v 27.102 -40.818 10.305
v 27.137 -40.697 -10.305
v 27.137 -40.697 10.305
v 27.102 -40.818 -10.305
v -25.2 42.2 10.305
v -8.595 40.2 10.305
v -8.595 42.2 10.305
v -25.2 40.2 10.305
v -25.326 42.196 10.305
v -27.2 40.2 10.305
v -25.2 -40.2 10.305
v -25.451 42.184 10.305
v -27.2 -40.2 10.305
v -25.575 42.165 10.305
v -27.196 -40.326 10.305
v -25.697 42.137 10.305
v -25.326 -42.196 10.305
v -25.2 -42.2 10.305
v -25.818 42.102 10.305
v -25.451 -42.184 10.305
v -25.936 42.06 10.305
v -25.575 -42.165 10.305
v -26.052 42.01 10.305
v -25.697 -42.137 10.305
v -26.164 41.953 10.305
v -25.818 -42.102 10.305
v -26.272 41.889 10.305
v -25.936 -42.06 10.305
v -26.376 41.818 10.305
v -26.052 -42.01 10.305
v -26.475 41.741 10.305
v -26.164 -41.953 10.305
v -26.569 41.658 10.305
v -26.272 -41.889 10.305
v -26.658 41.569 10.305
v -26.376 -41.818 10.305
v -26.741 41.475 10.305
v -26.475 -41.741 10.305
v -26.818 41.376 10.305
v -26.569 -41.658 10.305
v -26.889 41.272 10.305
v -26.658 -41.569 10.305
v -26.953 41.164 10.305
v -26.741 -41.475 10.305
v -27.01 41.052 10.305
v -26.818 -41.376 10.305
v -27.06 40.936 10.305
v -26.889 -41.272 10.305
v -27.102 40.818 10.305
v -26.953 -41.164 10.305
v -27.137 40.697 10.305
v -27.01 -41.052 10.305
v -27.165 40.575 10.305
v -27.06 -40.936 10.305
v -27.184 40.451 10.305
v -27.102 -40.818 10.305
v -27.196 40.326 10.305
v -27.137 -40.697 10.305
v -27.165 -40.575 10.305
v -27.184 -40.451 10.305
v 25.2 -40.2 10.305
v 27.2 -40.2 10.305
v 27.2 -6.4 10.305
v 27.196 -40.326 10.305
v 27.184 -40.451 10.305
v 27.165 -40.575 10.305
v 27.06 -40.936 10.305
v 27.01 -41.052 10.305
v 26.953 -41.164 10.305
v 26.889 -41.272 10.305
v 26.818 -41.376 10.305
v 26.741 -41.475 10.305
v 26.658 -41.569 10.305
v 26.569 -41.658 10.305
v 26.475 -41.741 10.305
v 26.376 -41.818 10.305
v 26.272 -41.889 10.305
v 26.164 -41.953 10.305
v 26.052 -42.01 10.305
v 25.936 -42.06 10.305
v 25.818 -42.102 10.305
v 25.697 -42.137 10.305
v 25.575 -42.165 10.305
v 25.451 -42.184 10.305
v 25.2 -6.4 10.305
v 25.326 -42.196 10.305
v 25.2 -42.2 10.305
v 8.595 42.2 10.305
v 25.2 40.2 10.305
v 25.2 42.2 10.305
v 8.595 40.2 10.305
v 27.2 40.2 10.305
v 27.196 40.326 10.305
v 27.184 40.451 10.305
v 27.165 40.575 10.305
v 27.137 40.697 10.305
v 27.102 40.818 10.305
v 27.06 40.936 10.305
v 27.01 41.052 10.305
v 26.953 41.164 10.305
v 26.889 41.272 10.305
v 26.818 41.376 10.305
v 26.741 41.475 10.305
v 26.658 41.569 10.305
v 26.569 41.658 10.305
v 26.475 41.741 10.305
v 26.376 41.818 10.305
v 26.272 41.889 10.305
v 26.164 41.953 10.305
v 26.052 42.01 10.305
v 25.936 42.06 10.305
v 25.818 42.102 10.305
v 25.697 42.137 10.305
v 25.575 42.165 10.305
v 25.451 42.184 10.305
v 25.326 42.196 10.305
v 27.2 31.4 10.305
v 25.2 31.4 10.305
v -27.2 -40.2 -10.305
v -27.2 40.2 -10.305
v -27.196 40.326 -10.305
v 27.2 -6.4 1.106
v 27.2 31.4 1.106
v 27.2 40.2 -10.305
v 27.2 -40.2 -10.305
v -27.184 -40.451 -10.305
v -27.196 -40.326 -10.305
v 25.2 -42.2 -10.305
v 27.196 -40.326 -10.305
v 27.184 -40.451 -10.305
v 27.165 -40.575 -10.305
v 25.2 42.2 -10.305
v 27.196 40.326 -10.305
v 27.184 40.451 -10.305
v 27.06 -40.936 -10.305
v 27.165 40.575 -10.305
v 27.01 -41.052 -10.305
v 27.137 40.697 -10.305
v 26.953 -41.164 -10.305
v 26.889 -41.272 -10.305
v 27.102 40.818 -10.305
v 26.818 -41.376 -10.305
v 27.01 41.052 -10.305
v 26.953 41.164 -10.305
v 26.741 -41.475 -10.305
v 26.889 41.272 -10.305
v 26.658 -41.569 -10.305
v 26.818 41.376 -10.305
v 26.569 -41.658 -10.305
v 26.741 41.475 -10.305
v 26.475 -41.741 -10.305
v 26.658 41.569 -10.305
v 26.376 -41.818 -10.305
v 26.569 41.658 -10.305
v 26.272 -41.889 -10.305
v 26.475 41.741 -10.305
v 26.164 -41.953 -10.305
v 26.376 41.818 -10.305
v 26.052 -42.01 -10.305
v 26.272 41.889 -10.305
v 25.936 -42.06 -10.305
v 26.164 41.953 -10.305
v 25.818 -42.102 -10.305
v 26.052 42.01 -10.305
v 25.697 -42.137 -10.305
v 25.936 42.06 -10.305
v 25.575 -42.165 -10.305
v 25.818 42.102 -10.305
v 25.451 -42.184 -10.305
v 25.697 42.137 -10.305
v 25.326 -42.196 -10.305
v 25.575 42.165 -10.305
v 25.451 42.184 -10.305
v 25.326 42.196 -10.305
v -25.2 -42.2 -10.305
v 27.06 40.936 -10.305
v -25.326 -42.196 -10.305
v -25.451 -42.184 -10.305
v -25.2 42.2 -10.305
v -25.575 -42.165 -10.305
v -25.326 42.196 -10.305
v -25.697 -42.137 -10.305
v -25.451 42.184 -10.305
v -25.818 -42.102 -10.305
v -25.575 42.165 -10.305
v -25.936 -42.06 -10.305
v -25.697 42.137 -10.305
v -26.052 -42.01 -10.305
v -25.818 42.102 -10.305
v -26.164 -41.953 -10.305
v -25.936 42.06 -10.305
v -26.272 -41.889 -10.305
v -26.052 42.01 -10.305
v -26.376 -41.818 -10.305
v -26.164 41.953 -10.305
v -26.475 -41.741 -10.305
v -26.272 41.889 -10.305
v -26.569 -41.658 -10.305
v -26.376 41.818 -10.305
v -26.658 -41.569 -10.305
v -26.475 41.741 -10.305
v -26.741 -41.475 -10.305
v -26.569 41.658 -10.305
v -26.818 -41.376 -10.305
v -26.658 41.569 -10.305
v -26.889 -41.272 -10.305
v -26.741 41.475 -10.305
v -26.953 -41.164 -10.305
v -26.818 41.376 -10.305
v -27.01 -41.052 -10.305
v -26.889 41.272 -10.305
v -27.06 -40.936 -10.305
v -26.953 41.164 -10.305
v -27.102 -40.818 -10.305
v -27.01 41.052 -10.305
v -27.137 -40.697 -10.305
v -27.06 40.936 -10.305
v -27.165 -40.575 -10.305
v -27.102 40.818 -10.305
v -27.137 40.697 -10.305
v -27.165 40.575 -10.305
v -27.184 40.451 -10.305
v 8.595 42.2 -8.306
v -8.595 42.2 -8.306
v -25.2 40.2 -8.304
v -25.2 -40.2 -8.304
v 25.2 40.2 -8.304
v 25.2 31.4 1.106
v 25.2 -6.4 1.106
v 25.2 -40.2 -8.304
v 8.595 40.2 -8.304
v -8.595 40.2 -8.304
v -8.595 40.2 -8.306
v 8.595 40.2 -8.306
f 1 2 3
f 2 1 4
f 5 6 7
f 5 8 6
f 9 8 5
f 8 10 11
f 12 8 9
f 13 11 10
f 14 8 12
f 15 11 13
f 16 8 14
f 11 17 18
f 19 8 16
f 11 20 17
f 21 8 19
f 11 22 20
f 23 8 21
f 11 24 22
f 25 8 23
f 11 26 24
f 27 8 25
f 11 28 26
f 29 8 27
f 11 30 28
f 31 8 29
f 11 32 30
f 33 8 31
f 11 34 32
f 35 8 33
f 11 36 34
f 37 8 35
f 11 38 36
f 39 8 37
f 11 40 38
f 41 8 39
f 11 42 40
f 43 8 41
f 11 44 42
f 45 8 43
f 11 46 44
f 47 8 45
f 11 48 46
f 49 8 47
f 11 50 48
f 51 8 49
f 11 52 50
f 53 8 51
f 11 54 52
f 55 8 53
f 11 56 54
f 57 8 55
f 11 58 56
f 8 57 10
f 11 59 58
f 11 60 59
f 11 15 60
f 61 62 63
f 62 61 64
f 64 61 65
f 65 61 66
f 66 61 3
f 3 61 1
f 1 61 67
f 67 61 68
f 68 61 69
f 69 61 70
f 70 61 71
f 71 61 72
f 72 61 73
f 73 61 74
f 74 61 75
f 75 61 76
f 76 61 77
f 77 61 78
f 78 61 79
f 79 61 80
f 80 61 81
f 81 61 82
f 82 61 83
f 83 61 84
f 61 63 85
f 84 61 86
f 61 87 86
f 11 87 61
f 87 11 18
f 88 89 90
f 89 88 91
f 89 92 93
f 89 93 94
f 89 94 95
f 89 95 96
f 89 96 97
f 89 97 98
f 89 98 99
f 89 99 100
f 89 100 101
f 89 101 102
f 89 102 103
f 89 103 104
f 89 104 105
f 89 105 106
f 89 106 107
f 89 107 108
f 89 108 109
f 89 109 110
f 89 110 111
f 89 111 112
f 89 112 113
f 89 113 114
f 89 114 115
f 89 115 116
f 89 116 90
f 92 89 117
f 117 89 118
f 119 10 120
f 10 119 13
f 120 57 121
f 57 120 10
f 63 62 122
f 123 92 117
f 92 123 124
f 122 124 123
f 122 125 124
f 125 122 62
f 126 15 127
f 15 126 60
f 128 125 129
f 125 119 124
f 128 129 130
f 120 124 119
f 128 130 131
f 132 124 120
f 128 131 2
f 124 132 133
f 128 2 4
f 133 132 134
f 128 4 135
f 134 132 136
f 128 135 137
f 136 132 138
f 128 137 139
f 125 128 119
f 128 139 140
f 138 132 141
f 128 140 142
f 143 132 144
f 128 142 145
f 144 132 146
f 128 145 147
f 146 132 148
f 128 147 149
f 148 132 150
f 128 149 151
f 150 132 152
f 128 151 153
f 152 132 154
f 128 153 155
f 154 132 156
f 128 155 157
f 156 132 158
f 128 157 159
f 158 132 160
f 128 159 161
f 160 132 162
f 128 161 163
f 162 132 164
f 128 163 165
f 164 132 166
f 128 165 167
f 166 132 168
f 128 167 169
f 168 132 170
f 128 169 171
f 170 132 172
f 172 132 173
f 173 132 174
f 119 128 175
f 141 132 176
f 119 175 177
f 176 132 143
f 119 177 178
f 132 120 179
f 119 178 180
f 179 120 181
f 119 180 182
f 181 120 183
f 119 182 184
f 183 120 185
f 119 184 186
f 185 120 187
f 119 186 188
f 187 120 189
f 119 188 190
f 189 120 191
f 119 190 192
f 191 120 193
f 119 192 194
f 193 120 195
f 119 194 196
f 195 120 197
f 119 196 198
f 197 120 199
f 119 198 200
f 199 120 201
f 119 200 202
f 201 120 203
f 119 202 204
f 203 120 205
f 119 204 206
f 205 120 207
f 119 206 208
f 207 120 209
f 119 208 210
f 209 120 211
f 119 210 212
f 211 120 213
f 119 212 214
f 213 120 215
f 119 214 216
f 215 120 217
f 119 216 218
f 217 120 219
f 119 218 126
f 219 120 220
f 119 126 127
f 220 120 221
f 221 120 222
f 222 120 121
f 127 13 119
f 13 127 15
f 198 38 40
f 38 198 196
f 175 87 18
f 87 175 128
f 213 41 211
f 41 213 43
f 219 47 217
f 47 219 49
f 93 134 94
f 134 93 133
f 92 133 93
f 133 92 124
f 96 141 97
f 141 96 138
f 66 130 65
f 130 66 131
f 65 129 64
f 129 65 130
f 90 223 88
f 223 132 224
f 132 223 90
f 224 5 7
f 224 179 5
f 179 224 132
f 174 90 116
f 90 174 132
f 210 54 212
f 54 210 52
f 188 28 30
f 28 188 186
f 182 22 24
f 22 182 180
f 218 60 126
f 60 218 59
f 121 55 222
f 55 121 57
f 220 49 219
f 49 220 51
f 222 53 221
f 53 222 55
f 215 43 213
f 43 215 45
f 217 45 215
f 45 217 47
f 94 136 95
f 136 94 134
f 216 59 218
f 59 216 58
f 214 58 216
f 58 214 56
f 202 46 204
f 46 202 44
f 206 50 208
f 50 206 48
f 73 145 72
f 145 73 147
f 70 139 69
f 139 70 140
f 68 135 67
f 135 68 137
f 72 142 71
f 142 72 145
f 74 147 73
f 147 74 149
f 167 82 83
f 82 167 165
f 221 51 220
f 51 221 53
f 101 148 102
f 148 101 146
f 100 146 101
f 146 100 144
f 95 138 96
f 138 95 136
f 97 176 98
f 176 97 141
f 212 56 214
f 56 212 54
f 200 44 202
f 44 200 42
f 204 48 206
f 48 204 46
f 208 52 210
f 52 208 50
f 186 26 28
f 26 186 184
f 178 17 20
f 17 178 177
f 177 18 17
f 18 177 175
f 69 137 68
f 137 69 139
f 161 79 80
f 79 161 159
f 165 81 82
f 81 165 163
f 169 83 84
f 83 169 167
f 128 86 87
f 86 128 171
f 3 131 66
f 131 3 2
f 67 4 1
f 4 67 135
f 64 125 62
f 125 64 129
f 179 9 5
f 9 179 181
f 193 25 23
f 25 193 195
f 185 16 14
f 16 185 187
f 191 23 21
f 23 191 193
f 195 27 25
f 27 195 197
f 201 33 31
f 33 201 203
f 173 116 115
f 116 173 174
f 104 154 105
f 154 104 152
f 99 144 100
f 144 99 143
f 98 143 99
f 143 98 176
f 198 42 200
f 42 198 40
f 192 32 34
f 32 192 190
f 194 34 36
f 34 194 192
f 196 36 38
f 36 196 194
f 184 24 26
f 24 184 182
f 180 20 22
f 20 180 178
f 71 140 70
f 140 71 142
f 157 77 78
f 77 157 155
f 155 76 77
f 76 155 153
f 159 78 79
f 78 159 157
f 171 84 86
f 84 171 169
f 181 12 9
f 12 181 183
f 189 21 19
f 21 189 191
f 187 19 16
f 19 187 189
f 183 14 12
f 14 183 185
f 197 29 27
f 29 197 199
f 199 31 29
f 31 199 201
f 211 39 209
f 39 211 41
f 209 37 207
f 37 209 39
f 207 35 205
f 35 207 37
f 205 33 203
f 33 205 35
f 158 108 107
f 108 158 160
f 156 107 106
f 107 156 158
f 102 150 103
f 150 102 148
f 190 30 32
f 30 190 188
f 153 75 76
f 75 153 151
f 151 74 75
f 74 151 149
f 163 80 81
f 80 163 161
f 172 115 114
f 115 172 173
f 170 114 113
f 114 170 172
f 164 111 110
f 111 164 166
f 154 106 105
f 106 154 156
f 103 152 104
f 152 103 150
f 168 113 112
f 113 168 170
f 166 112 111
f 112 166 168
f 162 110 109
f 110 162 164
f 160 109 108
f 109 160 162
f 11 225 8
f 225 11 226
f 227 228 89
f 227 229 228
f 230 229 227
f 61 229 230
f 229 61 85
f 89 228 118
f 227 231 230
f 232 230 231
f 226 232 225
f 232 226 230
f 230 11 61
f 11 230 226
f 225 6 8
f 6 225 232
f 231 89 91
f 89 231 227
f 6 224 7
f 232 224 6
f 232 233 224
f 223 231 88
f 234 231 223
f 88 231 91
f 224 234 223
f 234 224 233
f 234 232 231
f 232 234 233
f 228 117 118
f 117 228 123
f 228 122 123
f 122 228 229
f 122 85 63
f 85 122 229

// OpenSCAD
// file: LoadCell_Case_Dimensions.scad
// render settings
fn       = 100;     // sides to render on cylinder
cutClear = 0.001;   // exact cutouts do not render

// clearances
clear = 0.2;    // object to case side
chipH = 3;      // height of chips on board

// PCB dimensions
pcbW = 50;      // width
pcbL = 80;      // length
pcbH = 1.6;     // height

// case dimensions
wallW   = 2;    // wall thickness
roundR  = 2;    // radius of rounded corners
wallCut = wallW + cutClear;

// ethernet cutout sizes
ethH = 13.61 + clear * 2; // 14.00 datasheet recommended
ethW = 16.79 + clear * 2; // 17.55 datasheet recommended

// TRS cutout sizes
trsRad   = 2 + clear;   // radius of cutout for TRS ports
trsSpace = 11;          // spacing between TRS ports 
                        // same as space between first TRS port and PCB edge
trsNum   = 4;           // number of TRS ports
trsCent  = 27.5;        // center of the TRS bank from edge of PCB

// PCB mount points
holeX   = 3.5;                  // distance from hole center to edge of PCB
heatR   = 3.9 / 2;              // radius of hole for heat set insert
heatH   = 3;                    // depth of hole for heat set insert
heatPad = holeX - clear * 2;    // radius of padding around heat set insert

// Makes a cube shape with rounded corners in the z-direction
// dim[x,y,z] - vector containing outer dimensions of the cube
// rad        - radius of the rounded corners 
module RoundCorners(dim, rad) {
    // create adjusted dimensions for corners
    adjDim = [dim[0] - rad * 2, dim[1] - rad * 2, dim[2]];

    hull() {
        // place cylinders at each corner
        for (x = [1, -1])
            for (y = [1, -1])
                translate([x * adjDim[0] / 2,   y * adjDim[1] / 2, 0])
                    cylinder(h = adjDim[2], r = rad, center = true, $fn = fn);

        // place main body
        cube(adjDim, center = true);
    }
}
// main file
include <LoadCell_Case_Dimensions.scad>;

// outer size of lid
lidOuterSize = [pcbW + (clear + wallW) * 2, pcbL + (clear + wallW) * 2, pcbH + chipH + ethH + wallW];

// inner size of lid
lidInnerSize = [pcbW + clear * 2, pcbL + clear * 2, pcbH + chipH + ethH];

// edge of wall
wallEdge = [(pcbW + wallW) / 2 + clear, (pcbL + wallW) / 2 + clear, - lidOuterSize[2] / 2 + wallW];

// ethernet wall cutout for lid
lidEthCutout = [ethW, wallCut, lidInnerSize[2] + cutClear];

// trs cutout for lid
lidTrsCutout = [wallCut, trsRad * 2 + trsSpace * (trsNum - 1) + clear * 2, pcbH + chipH + trsRad * 2 + clear];

difference() {

    // outer dimensions
    RoundCorners(lidOuterSize, roundR);

    // cutout inner dimensions
    translate([0, 0, wallW / 2 + cutClear])
        cube(lidInnerSize, center = true);

    // cutout ethernet hole
    translate([0, wallEdge[1], (lidOuterSize[2] - lidInnerSize[2]) / 2])
        cube(lidEthCutout, center = true);

    // cutout trs hole
    translate([wallEdge[0], pcbL / 2 - trsCent, (lidOuterSize[2] - lidTrsCutout[2]) / 2 + cutClear])
        cube(lidTrsCutout, center = true);
}
